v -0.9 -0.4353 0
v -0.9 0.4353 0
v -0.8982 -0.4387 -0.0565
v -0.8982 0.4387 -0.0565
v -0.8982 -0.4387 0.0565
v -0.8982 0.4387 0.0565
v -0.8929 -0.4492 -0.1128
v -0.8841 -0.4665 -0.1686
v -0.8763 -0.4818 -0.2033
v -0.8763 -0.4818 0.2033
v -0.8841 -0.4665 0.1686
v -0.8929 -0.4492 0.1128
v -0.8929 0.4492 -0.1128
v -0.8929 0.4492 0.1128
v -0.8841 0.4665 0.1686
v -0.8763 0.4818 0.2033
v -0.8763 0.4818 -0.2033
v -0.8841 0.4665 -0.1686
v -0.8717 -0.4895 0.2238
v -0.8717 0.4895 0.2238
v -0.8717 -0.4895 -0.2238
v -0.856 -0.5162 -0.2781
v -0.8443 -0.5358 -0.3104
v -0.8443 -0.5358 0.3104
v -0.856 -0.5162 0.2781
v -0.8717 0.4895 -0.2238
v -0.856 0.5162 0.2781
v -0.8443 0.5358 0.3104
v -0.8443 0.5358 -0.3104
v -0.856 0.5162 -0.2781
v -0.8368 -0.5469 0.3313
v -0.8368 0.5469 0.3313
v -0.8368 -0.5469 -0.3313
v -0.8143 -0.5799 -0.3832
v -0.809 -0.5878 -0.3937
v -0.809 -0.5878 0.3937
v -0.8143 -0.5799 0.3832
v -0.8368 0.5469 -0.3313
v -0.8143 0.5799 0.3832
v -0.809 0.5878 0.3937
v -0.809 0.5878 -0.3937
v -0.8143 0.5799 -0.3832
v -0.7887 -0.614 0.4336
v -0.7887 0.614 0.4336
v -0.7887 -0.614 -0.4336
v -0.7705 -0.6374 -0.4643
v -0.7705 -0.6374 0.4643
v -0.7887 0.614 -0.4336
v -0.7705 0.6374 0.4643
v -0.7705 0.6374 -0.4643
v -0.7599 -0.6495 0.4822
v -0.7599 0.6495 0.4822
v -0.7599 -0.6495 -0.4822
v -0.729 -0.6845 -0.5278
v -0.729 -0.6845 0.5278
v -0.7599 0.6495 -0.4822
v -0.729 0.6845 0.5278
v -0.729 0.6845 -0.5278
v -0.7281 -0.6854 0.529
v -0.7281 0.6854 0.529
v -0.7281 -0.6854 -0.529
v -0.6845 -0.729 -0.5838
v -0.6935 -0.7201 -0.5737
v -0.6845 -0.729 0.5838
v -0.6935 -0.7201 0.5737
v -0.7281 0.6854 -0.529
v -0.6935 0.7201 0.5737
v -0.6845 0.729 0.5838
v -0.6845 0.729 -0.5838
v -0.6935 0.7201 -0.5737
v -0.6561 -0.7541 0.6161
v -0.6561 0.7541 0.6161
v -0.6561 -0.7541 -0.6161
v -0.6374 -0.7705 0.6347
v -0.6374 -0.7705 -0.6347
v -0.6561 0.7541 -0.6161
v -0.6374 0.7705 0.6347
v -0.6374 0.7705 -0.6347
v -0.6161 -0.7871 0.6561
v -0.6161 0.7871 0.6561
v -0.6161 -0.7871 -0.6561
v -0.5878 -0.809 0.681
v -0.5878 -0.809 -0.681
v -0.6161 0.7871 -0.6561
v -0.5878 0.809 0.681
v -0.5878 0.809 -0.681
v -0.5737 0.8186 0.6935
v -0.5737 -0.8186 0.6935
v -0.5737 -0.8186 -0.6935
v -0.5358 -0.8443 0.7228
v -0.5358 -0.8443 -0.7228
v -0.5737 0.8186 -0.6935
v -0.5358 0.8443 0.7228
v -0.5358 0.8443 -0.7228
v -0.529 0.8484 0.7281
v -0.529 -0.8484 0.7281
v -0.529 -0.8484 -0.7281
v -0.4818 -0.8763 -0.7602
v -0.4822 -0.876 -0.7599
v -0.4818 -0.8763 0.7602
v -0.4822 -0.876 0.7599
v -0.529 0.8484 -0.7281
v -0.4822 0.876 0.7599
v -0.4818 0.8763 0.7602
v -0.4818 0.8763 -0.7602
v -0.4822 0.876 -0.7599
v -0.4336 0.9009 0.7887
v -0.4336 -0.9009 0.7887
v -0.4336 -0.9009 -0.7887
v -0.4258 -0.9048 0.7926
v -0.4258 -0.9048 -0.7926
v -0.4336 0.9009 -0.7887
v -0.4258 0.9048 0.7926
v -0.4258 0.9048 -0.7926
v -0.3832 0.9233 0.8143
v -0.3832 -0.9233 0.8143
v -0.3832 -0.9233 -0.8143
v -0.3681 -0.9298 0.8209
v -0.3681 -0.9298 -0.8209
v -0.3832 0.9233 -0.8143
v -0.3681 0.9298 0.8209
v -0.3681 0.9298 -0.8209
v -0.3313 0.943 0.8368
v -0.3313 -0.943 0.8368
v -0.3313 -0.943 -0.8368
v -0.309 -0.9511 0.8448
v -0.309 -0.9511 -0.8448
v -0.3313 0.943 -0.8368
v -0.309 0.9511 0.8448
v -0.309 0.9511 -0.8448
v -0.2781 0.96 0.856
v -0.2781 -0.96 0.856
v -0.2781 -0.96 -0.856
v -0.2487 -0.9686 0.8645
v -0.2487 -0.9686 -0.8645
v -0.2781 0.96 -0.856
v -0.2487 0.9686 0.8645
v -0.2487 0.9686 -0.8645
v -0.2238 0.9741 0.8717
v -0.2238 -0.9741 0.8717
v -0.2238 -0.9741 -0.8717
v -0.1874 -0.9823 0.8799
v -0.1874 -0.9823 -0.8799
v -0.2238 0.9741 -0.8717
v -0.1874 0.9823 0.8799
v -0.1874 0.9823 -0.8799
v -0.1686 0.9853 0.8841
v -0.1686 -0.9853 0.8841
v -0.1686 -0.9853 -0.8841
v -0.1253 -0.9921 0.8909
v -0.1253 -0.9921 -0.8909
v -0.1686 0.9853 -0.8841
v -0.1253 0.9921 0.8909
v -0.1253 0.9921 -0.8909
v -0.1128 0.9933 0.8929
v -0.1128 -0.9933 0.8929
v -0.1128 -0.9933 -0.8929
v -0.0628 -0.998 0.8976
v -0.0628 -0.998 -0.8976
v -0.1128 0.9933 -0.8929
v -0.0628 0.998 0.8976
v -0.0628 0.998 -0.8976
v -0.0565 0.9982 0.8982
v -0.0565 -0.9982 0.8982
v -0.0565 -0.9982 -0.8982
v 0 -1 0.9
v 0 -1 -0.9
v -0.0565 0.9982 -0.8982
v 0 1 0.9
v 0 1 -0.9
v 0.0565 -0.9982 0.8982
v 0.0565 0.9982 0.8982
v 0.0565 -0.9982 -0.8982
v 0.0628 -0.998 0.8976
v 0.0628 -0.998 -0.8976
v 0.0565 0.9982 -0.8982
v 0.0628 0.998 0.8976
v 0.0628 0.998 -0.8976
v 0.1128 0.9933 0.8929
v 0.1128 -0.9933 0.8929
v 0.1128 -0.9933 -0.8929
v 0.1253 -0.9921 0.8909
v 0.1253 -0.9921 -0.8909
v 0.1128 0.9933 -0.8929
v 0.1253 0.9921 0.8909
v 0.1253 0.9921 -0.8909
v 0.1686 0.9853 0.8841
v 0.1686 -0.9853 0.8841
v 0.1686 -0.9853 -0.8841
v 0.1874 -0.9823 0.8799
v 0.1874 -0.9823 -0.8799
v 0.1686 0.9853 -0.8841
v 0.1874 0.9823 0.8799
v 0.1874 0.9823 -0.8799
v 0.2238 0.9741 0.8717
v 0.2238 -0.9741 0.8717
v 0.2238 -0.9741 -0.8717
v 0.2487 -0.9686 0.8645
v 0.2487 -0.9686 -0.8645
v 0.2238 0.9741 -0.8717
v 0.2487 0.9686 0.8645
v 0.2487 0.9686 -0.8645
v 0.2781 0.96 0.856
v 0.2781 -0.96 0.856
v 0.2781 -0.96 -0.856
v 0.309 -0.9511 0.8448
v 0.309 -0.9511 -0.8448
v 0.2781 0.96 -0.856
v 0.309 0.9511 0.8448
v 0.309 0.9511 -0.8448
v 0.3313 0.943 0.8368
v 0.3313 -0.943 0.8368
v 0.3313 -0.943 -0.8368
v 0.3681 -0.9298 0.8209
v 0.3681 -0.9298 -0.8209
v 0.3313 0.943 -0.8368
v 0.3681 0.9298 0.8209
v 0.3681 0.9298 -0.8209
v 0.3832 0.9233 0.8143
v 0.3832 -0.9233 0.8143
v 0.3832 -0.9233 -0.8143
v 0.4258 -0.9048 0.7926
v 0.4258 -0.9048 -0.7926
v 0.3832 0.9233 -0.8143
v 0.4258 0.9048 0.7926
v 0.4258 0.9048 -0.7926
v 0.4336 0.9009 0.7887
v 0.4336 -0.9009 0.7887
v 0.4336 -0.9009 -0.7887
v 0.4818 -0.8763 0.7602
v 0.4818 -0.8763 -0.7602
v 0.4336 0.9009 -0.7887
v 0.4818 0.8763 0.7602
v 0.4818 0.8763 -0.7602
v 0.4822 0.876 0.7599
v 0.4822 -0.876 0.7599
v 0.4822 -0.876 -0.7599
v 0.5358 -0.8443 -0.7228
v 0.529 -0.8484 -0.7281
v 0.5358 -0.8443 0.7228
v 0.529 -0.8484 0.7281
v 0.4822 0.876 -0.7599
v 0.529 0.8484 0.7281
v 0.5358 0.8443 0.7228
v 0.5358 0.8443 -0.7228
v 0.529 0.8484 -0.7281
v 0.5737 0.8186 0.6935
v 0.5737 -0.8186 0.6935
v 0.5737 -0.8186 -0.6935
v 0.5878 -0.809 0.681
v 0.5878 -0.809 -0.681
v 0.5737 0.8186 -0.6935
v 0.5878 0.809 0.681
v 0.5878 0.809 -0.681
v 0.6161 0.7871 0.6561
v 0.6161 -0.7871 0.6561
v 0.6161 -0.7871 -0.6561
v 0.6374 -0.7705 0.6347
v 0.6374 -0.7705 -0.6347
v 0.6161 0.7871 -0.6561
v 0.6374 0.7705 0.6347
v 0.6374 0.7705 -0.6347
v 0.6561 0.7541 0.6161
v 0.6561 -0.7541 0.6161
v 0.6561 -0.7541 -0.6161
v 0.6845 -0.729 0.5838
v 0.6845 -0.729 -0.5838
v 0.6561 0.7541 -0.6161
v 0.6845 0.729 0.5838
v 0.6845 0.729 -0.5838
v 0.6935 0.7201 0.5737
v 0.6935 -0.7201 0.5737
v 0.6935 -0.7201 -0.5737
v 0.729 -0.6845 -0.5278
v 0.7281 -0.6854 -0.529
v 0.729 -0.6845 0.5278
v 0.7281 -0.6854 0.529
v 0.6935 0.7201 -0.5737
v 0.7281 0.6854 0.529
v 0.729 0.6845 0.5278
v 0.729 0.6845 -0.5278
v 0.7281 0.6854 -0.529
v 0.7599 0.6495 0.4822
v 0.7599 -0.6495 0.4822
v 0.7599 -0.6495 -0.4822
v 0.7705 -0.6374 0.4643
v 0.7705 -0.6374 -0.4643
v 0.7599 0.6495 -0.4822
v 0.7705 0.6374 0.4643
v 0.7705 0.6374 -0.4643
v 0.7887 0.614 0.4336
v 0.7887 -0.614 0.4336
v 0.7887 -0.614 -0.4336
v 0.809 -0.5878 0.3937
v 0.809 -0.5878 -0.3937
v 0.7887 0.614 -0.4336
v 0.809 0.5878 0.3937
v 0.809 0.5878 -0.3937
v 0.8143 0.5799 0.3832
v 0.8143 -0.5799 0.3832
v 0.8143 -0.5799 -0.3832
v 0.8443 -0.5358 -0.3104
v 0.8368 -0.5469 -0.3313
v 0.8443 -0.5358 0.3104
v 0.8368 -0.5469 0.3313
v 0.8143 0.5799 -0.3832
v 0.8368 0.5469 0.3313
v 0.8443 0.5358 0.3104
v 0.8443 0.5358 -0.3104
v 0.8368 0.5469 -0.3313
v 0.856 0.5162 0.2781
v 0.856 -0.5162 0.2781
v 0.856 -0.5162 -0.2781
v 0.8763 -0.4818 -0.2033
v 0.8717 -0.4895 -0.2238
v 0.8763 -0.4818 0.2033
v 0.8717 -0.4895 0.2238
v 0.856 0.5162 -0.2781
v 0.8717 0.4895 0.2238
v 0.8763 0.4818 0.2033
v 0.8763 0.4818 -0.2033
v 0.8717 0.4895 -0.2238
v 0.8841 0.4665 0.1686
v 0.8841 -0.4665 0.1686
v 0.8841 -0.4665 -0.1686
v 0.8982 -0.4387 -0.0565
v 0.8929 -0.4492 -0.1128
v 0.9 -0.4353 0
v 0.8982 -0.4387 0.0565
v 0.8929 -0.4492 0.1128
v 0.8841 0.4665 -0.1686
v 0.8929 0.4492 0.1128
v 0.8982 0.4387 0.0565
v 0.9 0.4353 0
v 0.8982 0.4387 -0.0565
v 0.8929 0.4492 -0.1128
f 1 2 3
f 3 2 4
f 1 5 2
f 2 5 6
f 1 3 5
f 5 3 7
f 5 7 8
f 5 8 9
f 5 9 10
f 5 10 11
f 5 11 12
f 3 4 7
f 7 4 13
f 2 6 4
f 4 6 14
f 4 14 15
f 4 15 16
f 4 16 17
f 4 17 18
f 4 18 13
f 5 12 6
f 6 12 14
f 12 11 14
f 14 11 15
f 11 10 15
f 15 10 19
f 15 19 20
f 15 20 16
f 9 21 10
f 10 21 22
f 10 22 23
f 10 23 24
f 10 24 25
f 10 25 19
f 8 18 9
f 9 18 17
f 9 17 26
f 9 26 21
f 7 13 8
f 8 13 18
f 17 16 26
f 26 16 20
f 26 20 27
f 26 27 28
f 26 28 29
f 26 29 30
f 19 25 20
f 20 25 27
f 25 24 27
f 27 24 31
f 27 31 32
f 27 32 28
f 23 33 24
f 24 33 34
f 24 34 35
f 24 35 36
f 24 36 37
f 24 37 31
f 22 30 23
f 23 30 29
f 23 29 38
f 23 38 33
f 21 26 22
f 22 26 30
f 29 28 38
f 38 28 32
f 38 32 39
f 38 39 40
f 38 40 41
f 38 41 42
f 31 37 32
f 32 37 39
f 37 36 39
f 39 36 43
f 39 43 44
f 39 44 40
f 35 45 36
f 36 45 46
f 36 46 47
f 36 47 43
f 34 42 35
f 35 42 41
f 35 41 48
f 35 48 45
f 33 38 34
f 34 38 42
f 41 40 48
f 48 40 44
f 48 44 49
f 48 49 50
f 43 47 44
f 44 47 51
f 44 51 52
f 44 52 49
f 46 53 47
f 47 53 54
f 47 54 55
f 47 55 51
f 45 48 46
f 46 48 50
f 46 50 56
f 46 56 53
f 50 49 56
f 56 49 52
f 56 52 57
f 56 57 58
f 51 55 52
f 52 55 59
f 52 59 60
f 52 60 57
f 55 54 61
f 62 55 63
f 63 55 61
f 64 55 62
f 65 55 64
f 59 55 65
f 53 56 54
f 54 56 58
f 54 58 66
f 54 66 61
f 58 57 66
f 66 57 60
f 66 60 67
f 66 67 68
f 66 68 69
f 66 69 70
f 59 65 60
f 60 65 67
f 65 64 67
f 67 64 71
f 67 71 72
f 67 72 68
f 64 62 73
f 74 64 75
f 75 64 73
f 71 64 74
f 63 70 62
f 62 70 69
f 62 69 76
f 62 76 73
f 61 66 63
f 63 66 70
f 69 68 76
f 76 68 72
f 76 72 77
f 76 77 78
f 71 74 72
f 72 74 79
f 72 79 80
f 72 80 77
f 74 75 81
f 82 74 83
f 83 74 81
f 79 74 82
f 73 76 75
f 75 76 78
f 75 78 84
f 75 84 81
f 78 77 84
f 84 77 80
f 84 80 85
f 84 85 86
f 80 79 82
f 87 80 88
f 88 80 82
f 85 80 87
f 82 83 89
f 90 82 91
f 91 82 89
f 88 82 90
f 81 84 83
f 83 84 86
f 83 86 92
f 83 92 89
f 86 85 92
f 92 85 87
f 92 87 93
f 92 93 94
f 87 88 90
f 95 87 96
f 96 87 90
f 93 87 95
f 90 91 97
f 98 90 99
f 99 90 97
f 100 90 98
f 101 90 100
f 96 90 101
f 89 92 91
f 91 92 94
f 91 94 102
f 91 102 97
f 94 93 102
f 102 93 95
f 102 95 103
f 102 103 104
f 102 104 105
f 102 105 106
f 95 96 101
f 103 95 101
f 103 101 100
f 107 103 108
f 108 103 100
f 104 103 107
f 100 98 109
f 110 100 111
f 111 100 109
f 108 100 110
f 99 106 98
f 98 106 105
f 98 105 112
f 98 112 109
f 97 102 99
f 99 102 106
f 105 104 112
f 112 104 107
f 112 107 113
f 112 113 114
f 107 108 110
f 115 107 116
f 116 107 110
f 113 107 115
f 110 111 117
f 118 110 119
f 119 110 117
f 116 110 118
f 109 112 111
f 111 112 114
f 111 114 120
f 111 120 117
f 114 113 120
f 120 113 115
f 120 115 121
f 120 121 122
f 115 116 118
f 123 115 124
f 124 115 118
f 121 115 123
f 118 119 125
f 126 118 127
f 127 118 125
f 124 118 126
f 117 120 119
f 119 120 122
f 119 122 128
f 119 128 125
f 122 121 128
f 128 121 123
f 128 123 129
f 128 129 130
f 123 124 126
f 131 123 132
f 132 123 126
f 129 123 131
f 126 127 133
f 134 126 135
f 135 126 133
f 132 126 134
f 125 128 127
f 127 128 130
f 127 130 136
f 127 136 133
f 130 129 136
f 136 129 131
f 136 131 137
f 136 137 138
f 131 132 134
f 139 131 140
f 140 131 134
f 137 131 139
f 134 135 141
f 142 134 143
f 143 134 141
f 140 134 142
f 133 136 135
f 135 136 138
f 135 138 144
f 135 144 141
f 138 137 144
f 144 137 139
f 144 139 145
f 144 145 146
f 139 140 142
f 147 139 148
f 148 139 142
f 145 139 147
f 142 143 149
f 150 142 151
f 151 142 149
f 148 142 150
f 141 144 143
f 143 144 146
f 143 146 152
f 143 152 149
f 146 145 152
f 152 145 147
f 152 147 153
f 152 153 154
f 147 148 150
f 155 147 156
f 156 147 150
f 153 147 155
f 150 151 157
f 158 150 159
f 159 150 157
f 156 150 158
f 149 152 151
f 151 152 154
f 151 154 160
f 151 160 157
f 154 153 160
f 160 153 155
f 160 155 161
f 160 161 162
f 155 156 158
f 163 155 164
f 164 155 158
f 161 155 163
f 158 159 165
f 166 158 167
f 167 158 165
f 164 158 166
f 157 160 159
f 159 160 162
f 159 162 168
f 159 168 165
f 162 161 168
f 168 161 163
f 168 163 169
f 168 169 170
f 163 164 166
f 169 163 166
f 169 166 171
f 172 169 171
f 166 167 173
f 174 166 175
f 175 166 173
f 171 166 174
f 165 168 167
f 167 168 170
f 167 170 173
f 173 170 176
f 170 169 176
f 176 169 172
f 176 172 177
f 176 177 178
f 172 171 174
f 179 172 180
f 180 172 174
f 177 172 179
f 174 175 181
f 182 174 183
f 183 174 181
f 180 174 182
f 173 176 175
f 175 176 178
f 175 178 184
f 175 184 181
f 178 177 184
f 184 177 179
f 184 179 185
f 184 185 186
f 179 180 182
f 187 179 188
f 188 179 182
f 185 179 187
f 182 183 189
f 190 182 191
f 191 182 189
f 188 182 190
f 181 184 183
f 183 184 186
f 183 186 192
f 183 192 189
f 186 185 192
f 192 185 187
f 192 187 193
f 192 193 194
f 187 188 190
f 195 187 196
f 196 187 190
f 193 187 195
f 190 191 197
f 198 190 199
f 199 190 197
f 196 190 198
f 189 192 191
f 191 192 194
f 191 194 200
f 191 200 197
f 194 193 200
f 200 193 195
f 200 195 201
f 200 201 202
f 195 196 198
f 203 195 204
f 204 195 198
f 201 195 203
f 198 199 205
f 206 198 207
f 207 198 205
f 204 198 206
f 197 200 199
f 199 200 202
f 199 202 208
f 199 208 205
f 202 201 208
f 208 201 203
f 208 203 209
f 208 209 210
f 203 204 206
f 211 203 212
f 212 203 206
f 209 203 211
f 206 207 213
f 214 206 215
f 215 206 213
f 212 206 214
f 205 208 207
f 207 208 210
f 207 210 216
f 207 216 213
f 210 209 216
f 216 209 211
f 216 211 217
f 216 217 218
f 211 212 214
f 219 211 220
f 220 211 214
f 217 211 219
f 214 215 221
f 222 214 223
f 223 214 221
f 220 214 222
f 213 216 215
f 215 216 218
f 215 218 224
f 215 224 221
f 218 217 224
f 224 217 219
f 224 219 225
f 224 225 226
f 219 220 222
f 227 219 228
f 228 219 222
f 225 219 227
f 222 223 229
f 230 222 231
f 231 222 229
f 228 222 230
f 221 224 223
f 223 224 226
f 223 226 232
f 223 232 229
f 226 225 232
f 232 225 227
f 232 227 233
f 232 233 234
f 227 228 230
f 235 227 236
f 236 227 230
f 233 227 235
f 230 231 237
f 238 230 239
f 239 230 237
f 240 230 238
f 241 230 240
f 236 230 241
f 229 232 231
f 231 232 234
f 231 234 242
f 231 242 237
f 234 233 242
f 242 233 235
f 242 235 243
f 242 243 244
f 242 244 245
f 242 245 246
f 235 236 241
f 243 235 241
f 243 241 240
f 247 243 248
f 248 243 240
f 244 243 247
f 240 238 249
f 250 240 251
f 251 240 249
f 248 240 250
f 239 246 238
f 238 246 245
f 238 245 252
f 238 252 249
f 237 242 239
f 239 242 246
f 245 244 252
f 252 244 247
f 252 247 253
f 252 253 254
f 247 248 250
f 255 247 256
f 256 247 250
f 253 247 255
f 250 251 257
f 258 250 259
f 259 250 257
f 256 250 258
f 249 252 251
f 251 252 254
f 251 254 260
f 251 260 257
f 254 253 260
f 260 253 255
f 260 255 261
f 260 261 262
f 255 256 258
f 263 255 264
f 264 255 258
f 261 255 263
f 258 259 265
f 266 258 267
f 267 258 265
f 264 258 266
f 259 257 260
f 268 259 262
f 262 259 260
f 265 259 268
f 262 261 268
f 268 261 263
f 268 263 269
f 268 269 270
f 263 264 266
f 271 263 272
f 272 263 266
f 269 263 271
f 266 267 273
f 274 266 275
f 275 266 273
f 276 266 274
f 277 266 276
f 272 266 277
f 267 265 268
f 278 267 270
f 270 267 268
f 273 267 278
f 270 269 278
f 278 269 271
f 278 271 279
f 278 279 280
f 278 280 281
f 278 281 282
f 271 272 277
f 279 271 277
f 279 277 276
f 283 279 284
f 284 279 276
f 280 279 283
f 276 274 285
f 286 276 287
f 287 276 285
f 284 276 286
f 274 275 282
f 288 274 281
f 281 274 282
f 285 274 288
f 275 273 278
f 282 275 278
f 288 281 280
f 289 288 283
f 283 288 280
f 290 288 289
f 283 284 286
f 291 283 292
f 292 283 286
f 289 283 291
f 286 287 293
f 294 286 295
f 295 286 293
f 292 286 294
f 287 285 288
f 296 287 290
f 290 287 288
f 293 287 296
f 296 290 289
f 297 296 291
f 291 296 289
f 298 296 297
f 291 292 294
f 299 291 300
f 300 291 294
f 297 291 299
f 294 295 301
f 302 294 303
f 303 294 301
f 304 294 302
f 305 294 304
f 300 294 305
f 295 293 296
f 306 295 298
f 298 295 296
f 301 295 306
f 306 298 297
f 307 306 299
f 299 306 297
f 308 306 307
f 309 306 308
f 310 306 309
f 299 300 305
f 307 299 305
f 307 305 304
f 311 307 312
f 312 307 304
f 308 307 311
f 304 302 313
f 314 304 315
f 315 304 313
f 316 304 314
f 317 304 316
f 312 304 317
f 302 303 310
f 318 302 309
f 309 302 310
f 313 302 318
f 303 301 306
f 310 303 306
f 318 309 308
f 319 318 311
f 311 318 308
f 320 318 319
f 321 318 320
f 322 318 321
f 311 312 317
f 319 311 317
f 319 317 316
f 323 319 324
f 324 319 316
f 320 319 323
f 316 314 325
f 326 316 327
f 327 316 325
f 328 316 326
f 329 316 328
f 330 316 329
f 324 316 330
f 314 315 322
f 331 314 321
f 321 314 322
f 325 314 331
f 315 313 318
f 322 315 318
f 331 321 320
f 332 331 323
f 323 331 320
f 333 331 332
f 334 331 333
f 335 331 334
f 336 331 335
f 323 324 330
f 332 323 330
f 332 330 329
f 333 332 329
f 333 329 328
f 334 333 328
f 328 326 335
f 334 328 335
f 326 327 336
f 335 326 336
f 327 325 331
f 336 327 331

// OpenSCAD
// See http://en.wikibooks.org/wiki/OpenSCAD_User_Manual/The_OpenSCAD_Language#CSG_Modeling

intersection() {
	cylinder (h = 4, r=1, center = true, $fn=100);
	rotate ([90,0,0]) cylinder (h = 4, r=0.9, center = true, $fn=100);
}
